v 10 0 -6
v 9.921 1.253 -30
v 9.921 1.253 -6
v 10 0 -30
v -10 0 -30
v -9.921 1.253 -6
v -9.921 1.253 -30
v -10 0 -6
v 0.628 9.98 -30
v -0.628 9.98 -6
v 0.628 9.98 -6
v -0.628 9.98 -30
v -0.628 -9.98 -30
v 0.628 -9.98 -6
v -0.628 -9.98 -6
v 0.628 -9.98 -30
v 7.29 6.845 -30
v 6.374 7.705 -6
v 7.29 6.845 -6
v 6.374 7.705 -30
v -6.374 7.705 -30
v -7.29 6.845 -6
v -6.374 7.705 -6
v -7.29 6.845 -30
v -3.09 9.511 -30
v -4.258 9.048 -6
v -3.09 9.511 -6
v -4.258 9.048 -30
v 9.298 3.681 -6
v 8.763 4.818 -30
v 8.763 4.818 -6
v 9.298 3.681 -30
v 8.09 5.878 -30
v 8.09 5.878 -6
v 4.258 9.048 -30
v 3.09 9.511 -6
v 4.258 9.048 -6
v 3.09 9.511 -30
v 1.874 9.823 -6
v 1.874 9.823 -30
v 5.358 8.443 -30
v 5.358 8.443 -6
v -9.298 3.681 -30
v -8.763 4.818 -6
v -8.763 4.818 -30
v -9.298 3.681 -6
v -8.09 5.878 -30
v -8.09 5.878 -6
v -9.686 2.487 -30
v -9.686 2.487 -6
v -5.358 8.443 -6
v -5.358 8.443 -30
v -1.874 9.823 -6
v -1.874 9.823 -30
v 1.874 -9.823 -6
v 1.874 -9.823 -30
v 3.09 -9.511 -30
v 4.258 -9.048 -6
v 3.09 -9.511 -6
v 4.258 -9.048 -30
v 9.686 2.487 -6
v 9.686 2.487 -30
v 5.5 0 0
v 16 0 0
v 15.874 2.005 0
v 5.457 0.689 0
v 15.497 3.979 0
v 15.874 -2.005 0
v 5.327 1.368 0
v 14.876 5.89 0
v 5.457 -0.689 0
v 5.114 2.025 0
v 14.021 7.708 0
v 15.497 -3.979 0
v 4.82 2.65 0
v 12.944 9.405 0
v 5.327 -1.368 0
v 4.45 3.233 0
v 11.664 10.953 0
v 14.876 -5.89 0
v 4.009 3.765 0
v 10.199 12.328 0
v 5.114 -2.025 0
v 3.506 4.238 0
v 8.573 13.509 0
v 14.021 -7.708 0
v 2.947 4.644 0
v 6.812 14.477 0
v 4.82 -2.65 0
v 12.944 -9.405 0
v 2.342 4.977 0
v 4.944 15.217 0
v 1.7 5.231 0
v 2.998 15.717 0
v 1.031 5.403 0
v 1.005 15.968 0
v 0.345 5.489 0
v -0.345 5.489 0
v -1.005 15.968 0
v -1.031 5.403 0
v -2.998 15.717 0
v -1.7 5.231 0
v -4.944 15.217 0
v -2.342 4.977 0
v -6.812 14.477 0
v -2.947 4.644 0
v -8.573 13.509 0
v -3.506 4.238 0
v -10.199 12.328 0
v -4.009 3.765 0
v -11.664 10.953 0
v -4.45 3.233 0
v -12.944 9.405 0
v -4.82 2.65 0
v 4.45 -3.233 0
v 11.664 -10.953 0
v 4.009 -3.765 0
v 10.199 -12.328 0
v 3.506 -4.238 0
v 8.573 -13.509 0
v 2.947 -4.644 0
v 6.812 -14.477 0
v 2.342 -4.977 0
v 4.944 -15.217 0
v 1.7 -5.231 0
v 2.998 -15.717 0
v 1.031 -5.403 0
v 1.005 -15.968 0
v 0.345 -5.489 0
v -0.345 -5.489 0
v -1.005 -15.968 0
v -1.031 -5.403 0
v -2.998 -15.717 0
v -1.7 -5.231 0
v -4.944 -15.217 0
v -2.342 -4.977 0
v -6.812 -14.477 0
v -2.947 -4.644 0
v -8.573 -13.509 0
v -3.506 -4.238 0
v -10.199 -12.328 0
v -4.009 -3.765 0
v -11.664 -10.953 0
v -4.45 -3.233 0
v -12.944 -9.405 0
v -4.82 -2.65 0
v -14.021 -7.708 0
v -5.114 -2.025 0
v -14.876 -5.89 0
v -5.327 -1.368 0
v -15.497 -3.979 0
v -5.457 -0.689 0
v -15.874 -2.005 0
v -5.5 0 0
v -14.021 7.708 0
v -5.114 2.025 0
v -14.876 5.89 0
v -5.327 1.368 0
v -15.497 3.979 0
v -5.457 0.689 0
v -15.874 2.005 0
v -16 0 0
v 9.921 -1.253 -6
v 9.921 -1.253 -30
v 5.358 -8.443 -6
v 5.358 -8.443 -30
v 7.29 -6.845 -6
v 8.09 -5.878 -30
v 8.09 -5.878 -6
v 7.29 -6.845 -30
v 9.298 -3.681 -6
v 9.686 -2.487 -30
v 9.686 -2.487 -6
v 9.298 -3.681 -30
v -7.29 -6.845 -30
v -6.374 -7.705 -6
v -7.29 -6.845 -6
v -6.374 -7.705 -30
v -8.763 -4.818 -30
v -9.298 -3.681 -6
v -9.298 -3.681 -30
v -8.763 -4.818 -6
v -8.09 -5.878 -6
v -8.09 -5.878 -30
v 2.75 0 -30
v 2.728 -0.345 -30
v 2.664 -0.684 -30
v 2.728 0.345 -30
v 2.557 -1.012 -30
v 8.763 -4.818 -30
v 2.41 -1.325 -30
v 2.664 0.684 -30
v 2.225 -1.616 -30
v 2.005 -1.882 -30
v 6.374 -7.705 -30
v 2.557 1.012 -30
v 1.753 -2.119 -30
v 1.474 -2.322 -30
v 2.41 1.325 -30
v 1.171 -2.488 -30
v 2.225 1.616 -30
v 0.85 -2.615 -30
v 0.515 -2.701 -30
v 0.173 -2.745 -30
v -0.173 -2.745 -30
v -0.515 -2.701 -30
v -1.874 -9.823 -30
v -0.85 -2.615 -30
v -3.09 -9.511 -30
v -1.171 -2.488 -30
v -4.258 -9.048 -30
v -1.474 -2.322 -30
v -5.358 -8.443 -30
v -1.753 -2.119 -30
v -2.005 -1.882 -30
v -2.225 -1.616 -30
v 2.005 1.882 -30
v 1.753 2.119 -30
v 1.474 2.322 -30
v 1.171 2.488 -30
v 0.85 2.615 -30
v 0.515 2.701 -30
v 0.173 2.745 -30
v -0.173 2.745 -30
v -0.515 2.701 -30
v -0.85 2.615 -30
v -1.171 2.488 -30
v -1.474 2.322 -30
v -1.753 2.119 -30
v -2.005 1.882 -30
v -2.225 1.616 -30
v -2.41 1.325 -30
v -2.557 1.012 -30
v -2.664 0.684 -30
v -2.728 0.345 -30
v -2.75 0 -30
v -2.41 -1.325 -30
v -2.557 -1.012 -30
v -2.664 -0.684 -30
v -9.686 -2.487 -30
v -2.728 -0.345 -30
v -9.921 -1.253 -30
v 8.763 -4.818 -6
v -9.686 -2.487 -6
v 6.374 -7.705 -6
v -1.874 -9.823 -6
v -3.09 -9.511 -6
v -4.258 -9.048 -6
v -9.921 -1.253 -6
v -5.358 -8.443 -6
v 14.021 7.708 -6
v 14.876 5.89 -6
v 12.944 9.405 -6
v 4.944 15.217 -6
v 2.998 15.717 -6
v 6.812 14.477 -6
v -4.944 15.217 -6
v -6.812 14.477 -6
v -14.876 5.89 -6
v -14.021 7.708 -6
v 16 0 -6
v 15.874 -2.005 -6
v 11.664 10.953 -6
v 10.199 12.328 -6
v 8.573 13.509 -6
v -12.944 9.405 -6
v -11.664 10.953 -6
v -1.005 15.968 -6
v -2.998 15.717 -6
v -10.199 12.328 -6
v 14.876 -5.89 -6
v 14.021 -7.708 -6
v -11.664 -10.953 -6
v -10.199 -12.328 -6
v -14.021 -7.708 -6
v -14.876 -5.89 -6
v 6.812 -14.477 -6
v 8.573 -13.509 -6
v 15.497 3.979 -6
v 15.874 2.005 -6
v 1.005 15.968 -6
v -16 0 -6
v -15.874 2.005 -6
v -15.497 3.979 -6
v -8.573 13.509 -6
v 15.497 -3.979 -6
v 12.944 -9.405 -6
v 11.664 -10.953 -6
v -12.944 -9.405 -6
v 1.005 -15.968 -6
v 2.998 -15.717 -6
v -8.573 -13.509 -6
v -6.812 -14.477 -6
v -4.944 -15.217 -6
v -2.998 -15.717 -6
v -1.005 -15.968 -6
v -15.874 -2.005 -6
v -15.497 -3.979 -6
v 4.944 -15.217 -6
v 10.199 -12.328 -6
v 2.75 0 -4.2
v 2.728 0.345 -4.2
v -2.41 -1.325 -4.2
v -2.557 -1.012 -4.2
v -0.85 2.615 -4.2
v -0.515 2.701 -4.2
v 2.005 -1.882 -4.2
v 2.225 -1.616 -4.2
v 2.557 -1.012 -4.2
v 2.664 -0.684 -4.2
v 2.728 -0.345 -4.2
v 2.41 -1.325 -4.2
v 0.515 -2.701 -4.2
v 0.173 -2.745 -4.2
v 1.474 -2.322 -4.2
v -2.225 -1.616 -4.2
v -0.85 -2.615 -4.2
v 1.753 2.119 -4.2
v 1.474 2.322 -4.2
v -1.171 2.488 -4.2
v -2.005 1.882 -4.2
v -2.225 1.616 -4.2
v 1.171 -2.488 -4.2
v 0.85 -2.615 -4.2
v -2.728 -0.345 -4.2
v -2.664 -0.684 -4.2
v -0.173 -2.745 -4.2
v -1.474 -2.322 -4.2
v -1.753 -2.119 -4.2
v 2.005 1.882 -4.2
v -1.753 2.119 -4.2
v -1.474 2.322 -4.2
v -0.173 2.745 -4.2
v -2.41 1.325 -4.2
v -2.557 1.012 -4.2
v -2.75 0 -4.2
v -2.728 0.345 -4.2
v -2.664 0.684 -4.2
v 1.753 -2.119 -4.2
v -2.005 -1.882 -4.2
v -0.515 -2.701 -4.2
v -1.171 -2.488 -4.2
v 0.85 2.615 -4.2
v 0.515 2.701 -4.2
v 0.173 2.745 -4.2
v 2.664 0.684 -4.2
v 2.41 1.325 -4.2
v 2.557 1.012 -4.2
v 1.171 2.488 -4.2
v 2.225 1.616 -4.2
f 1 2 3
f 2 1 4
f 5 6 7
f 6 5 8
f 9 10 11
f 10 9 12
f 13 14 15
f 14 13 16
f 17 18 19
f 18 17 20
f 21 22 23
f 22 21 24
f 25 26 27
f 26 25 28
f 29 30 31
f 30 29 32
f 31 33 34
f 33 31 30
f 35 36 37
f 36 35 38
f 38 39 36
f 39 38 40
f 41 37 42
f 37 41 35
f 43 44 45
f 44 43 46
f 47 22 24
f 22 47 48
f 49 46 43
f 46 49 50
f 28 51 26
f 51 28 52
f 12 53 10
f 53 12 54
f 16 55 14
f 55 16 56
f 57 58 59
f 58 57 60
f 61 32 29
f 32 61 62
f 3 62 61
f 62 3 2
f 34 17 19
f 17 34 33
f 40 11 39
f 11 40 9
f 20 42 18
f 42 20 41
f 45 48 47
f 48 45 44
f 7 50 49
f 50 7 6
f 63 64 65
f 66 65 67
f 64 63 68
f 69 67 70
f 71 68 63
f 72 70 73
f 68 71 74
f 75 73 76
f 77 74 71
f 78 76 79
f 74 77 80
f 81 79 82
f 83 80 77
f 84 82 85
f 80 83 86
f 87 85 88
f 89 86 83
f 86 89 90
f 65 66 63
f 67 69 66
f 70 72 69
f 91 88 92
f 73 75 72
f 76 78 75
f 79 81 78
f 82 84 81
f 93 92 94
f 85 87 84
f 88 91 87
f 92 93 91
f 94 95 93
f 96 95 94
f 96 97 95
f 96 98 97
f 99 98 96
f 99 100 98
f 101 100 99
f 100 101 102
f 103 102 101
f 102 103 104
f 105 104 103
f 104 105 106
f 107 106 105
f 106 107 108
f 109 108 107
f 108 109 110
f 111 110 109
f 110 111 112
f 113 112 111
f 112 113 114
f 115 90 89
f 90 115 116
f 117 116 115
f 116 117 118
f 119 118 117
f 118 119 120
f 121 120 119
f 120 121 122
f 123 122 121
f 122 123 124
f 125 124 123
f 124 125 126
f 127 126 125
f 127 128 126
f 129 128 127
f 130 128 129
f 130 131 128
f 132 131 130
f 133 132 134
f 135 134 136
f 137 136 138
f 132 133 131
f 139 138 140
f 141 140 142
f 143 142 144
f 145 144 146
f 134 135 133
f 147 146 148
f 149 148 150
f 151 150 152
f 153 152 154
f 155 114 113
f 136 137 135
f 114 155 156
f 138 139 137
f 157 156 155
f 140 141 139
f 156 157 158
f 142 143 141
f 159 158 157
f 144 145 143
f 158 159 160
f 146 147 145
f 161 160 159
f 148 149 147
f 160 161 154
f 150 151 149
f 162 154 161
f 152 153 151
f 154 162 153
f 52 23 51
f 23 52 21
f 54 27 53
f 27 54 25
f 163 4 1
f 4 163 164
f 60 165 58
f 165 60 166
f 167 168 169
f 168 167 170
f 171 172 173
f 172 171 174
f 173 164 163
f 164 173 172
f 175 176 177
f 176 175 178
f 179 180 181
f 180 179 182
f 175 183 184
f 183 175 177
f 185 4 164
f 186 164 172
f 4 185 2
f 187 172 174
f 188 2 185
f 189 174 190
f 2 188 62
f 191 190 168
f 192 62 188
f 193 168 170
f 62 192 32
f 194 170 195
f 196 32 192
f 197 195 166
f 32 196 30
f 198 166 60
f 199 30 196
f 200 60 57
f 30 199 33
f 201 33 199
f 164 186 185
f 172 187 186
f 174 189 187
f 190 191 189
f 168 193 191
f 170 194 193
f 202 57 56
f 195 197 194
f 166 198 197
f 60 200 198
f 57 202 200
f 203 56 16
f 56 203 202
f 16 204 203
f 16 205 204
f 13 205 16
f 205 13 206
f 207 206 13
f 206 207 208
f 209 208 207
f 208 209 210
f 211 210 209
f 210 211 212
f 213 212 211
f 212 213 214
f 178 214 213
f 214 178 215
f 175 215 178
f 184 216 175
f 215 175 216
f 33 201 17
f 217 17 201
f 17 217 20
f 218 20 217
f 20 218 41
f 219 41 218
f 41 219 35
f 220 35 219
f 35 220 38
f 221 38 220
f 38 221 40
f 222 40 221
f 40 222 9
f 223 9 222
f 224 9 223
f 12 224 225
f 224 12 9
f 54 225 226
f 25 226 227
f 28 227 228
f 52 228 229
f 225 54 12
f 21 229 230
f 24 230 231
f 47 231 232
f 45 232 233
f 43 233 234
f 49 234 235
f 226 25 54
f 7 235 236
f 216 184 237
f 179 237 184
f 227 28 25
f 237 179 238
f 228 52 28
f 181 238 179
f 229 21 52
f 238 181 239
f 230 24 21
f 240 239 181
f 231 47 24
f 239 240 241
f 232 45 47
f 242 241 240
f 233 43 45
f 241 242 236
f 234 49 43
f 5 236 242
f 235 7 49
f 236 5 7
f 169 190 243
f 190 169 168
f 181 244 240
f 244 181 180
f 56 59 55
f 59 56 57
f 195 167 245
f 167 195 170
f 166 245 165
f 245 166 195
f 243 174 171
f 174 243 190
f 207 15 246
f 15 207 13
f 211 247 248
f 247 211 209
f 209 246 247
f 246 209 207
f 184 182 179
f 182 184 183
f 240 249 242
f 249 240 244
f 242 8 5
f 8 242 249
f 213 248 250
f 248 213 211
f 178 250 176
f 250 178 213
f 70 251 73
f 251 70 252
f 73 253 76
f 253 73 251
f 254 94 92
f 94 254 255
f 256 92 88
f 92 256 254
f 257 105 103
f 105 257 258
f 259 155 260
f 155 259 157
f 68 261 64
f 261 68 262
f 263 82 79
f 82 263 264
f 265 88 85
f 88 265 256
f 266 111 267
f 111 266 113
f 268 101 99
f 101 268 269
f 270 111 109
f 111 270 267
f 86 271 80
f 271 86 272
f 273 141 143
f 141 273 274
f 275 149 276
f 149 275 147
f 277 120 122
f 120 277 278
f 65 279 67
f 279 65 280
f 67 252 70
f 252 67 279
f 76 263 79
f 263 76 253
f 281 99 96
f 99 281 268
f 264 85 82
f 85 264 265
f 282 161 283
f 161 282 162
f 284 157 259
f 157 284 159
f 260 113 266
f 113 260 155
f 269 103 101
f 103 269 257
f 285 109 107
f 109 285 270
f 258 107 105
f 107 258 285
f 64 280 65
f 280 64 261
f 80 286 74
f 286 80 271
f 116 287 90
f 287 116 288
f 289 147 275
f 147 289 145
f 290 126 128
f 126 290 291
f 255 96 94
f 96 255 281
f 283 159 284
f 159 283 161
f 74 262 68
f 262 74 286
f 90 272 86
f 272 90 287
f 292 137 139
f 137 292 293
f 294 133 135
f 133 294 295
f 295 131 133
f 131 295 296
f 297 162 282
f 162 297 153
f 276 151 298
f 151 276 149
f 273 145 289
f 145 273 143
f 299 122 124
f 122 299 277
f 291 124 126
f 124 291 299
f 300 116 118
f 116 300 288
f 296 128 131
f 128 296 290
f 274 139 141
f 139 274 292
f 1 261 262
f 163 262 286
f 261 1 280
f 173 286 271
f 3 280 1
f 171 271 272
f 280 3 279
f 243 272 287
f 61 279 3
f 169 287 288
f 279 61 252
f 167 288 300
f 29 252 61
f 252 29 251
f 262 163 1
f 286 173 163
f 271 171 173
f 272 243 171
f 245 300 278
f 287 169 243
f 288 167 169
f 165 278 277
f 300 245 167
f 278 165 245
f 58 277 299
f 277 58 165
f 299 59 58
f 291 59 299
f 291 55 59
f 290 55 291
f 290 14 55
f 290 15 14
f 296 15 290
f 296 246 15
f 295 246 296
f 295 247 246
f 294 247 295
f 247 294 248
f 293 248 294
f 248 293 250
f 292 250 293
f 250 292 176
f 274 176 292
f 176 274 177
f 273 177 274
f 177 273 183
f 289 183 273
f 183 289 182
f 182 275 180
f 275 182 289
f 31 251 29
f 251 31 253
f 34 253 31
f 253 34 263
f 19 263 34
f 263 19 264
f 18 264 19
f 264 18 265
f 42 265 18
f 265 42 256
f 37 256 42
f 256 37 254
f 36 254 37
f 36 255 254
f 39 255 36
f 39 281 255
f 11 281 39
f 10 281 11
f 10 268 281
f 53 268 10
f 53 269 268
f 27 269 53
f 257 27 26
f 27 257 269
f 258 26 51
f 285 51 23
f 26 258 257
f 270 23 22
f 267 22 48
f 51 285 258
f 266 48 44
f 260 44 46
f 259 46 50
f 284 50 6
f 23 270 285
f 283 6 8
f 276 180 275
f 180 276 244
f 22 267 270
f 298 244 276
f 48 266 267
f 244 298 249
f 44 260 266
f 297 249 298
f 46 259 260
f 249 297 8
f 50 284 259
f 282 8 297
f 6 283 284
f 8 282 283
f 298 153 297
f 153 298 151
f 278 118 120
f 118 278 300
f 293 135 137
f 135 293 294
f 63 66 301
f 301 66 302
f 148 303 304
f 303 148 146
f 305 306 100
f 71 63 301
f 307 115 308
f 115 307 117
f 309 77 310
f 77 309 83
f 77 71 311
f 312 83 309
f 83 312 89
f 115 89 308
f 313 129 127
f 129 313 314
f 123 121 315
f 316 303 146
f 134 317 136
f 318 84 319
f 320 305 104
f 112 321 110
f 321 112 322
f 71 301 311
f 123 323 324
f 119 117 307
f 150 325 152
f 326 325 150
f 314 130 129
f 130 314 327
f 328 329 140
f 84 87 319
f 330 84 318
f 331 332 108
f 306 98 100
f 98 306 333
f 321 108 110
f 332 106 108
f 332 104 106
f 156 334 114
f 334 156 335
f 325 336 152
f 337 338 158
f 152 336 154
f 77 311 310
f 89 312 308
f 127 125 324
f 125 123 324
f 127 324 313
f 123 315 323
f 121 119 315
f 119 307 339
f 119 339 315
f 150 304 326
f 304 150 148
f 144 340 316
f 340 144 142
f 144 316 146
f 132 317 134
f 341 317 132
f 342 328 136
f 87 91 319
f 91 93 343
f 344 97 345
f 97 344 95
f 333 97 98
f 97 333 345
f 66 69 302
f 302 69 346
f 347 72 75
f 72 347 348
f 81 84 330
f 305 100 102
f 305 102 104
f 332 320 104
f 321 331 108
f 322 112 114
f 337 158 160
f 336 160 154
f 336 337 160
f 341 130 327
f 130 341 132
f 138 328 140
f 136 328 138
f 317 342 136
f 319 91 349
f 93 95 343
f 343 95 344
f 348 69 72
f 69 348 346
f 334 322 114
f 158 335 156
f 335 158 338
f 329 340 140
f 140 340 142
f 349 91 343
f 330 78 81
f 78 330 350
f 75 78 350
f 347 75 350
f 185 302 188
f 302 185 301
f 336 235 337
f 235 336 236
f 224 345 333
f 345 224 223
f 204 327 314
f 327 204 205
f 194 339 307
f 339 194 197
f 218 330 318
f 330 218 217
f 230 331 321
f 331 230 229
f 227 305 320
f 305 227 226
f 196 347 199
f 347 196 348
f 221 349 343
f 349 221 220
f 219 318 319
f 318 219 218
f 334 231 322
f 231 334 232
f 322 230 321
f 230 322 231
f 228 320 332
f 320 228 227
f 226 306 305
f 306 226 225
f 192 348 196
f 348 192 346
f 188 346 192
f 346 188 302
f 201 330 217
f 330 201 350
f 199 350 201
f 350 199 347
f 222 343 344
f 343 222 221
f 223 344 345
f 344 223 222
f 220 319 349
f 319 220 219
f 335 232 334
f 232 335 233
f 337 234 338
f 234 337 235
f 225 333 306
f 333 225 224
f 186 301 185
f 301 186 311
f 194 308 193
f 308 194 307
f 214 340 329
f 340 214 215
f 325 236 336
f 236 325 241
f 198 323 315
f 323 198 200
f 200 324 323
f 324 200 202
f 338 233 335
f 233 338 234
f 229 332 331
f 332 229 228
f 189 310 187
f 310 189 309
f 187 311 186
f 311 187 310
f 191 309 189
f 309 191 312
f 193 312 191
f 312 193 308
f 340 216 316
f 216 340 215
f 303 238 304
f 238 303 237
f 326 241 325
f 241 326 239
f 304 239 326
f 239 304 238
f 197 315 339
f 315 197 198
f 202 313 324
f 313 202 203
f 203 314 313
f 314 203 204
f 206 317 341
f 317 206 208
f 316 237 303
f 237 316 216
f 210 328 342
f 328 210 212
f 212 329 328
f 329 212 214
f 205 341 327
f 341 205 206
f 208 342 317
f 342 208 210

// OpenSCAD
$fn = 50;


difference() {
	union() {
		translate(v = [0, 0, -30.0000000000]) {
			cylinder(h = 30, r = 10.0000000000);
		}
		translate(v = [0, 0, -6.0000000000]) {
			cylinder(h = 6, r = 16.0000000000);
		}
	}
	union() {
		translate(v = [0, 0, 0]) {
			rotate(a = [0, 0, 0]) {
				difference() {
					union() {
						#translate(v = [0, 0, -30.0000000000]) {
							cylinder(h = 30, r = 2.2500000000);
						}
						#translate(v = [0, 0, -4.2000000000]) {
							cylinder(h = 4.2000000000, r1 = 2.7500000000, r2 = 5.5000000000);
						}
						#translate(v = [0, 0, -30.0000000000]) {
							cylinder(h = 30, r = 2.7500000000);
						}
						#translate(v = [0, 0, -30.0000000000]) {
							cylinder(h = 30, r = 2.2500000000);
						}
					}
					union();
				}
			}
		}
	}
}
